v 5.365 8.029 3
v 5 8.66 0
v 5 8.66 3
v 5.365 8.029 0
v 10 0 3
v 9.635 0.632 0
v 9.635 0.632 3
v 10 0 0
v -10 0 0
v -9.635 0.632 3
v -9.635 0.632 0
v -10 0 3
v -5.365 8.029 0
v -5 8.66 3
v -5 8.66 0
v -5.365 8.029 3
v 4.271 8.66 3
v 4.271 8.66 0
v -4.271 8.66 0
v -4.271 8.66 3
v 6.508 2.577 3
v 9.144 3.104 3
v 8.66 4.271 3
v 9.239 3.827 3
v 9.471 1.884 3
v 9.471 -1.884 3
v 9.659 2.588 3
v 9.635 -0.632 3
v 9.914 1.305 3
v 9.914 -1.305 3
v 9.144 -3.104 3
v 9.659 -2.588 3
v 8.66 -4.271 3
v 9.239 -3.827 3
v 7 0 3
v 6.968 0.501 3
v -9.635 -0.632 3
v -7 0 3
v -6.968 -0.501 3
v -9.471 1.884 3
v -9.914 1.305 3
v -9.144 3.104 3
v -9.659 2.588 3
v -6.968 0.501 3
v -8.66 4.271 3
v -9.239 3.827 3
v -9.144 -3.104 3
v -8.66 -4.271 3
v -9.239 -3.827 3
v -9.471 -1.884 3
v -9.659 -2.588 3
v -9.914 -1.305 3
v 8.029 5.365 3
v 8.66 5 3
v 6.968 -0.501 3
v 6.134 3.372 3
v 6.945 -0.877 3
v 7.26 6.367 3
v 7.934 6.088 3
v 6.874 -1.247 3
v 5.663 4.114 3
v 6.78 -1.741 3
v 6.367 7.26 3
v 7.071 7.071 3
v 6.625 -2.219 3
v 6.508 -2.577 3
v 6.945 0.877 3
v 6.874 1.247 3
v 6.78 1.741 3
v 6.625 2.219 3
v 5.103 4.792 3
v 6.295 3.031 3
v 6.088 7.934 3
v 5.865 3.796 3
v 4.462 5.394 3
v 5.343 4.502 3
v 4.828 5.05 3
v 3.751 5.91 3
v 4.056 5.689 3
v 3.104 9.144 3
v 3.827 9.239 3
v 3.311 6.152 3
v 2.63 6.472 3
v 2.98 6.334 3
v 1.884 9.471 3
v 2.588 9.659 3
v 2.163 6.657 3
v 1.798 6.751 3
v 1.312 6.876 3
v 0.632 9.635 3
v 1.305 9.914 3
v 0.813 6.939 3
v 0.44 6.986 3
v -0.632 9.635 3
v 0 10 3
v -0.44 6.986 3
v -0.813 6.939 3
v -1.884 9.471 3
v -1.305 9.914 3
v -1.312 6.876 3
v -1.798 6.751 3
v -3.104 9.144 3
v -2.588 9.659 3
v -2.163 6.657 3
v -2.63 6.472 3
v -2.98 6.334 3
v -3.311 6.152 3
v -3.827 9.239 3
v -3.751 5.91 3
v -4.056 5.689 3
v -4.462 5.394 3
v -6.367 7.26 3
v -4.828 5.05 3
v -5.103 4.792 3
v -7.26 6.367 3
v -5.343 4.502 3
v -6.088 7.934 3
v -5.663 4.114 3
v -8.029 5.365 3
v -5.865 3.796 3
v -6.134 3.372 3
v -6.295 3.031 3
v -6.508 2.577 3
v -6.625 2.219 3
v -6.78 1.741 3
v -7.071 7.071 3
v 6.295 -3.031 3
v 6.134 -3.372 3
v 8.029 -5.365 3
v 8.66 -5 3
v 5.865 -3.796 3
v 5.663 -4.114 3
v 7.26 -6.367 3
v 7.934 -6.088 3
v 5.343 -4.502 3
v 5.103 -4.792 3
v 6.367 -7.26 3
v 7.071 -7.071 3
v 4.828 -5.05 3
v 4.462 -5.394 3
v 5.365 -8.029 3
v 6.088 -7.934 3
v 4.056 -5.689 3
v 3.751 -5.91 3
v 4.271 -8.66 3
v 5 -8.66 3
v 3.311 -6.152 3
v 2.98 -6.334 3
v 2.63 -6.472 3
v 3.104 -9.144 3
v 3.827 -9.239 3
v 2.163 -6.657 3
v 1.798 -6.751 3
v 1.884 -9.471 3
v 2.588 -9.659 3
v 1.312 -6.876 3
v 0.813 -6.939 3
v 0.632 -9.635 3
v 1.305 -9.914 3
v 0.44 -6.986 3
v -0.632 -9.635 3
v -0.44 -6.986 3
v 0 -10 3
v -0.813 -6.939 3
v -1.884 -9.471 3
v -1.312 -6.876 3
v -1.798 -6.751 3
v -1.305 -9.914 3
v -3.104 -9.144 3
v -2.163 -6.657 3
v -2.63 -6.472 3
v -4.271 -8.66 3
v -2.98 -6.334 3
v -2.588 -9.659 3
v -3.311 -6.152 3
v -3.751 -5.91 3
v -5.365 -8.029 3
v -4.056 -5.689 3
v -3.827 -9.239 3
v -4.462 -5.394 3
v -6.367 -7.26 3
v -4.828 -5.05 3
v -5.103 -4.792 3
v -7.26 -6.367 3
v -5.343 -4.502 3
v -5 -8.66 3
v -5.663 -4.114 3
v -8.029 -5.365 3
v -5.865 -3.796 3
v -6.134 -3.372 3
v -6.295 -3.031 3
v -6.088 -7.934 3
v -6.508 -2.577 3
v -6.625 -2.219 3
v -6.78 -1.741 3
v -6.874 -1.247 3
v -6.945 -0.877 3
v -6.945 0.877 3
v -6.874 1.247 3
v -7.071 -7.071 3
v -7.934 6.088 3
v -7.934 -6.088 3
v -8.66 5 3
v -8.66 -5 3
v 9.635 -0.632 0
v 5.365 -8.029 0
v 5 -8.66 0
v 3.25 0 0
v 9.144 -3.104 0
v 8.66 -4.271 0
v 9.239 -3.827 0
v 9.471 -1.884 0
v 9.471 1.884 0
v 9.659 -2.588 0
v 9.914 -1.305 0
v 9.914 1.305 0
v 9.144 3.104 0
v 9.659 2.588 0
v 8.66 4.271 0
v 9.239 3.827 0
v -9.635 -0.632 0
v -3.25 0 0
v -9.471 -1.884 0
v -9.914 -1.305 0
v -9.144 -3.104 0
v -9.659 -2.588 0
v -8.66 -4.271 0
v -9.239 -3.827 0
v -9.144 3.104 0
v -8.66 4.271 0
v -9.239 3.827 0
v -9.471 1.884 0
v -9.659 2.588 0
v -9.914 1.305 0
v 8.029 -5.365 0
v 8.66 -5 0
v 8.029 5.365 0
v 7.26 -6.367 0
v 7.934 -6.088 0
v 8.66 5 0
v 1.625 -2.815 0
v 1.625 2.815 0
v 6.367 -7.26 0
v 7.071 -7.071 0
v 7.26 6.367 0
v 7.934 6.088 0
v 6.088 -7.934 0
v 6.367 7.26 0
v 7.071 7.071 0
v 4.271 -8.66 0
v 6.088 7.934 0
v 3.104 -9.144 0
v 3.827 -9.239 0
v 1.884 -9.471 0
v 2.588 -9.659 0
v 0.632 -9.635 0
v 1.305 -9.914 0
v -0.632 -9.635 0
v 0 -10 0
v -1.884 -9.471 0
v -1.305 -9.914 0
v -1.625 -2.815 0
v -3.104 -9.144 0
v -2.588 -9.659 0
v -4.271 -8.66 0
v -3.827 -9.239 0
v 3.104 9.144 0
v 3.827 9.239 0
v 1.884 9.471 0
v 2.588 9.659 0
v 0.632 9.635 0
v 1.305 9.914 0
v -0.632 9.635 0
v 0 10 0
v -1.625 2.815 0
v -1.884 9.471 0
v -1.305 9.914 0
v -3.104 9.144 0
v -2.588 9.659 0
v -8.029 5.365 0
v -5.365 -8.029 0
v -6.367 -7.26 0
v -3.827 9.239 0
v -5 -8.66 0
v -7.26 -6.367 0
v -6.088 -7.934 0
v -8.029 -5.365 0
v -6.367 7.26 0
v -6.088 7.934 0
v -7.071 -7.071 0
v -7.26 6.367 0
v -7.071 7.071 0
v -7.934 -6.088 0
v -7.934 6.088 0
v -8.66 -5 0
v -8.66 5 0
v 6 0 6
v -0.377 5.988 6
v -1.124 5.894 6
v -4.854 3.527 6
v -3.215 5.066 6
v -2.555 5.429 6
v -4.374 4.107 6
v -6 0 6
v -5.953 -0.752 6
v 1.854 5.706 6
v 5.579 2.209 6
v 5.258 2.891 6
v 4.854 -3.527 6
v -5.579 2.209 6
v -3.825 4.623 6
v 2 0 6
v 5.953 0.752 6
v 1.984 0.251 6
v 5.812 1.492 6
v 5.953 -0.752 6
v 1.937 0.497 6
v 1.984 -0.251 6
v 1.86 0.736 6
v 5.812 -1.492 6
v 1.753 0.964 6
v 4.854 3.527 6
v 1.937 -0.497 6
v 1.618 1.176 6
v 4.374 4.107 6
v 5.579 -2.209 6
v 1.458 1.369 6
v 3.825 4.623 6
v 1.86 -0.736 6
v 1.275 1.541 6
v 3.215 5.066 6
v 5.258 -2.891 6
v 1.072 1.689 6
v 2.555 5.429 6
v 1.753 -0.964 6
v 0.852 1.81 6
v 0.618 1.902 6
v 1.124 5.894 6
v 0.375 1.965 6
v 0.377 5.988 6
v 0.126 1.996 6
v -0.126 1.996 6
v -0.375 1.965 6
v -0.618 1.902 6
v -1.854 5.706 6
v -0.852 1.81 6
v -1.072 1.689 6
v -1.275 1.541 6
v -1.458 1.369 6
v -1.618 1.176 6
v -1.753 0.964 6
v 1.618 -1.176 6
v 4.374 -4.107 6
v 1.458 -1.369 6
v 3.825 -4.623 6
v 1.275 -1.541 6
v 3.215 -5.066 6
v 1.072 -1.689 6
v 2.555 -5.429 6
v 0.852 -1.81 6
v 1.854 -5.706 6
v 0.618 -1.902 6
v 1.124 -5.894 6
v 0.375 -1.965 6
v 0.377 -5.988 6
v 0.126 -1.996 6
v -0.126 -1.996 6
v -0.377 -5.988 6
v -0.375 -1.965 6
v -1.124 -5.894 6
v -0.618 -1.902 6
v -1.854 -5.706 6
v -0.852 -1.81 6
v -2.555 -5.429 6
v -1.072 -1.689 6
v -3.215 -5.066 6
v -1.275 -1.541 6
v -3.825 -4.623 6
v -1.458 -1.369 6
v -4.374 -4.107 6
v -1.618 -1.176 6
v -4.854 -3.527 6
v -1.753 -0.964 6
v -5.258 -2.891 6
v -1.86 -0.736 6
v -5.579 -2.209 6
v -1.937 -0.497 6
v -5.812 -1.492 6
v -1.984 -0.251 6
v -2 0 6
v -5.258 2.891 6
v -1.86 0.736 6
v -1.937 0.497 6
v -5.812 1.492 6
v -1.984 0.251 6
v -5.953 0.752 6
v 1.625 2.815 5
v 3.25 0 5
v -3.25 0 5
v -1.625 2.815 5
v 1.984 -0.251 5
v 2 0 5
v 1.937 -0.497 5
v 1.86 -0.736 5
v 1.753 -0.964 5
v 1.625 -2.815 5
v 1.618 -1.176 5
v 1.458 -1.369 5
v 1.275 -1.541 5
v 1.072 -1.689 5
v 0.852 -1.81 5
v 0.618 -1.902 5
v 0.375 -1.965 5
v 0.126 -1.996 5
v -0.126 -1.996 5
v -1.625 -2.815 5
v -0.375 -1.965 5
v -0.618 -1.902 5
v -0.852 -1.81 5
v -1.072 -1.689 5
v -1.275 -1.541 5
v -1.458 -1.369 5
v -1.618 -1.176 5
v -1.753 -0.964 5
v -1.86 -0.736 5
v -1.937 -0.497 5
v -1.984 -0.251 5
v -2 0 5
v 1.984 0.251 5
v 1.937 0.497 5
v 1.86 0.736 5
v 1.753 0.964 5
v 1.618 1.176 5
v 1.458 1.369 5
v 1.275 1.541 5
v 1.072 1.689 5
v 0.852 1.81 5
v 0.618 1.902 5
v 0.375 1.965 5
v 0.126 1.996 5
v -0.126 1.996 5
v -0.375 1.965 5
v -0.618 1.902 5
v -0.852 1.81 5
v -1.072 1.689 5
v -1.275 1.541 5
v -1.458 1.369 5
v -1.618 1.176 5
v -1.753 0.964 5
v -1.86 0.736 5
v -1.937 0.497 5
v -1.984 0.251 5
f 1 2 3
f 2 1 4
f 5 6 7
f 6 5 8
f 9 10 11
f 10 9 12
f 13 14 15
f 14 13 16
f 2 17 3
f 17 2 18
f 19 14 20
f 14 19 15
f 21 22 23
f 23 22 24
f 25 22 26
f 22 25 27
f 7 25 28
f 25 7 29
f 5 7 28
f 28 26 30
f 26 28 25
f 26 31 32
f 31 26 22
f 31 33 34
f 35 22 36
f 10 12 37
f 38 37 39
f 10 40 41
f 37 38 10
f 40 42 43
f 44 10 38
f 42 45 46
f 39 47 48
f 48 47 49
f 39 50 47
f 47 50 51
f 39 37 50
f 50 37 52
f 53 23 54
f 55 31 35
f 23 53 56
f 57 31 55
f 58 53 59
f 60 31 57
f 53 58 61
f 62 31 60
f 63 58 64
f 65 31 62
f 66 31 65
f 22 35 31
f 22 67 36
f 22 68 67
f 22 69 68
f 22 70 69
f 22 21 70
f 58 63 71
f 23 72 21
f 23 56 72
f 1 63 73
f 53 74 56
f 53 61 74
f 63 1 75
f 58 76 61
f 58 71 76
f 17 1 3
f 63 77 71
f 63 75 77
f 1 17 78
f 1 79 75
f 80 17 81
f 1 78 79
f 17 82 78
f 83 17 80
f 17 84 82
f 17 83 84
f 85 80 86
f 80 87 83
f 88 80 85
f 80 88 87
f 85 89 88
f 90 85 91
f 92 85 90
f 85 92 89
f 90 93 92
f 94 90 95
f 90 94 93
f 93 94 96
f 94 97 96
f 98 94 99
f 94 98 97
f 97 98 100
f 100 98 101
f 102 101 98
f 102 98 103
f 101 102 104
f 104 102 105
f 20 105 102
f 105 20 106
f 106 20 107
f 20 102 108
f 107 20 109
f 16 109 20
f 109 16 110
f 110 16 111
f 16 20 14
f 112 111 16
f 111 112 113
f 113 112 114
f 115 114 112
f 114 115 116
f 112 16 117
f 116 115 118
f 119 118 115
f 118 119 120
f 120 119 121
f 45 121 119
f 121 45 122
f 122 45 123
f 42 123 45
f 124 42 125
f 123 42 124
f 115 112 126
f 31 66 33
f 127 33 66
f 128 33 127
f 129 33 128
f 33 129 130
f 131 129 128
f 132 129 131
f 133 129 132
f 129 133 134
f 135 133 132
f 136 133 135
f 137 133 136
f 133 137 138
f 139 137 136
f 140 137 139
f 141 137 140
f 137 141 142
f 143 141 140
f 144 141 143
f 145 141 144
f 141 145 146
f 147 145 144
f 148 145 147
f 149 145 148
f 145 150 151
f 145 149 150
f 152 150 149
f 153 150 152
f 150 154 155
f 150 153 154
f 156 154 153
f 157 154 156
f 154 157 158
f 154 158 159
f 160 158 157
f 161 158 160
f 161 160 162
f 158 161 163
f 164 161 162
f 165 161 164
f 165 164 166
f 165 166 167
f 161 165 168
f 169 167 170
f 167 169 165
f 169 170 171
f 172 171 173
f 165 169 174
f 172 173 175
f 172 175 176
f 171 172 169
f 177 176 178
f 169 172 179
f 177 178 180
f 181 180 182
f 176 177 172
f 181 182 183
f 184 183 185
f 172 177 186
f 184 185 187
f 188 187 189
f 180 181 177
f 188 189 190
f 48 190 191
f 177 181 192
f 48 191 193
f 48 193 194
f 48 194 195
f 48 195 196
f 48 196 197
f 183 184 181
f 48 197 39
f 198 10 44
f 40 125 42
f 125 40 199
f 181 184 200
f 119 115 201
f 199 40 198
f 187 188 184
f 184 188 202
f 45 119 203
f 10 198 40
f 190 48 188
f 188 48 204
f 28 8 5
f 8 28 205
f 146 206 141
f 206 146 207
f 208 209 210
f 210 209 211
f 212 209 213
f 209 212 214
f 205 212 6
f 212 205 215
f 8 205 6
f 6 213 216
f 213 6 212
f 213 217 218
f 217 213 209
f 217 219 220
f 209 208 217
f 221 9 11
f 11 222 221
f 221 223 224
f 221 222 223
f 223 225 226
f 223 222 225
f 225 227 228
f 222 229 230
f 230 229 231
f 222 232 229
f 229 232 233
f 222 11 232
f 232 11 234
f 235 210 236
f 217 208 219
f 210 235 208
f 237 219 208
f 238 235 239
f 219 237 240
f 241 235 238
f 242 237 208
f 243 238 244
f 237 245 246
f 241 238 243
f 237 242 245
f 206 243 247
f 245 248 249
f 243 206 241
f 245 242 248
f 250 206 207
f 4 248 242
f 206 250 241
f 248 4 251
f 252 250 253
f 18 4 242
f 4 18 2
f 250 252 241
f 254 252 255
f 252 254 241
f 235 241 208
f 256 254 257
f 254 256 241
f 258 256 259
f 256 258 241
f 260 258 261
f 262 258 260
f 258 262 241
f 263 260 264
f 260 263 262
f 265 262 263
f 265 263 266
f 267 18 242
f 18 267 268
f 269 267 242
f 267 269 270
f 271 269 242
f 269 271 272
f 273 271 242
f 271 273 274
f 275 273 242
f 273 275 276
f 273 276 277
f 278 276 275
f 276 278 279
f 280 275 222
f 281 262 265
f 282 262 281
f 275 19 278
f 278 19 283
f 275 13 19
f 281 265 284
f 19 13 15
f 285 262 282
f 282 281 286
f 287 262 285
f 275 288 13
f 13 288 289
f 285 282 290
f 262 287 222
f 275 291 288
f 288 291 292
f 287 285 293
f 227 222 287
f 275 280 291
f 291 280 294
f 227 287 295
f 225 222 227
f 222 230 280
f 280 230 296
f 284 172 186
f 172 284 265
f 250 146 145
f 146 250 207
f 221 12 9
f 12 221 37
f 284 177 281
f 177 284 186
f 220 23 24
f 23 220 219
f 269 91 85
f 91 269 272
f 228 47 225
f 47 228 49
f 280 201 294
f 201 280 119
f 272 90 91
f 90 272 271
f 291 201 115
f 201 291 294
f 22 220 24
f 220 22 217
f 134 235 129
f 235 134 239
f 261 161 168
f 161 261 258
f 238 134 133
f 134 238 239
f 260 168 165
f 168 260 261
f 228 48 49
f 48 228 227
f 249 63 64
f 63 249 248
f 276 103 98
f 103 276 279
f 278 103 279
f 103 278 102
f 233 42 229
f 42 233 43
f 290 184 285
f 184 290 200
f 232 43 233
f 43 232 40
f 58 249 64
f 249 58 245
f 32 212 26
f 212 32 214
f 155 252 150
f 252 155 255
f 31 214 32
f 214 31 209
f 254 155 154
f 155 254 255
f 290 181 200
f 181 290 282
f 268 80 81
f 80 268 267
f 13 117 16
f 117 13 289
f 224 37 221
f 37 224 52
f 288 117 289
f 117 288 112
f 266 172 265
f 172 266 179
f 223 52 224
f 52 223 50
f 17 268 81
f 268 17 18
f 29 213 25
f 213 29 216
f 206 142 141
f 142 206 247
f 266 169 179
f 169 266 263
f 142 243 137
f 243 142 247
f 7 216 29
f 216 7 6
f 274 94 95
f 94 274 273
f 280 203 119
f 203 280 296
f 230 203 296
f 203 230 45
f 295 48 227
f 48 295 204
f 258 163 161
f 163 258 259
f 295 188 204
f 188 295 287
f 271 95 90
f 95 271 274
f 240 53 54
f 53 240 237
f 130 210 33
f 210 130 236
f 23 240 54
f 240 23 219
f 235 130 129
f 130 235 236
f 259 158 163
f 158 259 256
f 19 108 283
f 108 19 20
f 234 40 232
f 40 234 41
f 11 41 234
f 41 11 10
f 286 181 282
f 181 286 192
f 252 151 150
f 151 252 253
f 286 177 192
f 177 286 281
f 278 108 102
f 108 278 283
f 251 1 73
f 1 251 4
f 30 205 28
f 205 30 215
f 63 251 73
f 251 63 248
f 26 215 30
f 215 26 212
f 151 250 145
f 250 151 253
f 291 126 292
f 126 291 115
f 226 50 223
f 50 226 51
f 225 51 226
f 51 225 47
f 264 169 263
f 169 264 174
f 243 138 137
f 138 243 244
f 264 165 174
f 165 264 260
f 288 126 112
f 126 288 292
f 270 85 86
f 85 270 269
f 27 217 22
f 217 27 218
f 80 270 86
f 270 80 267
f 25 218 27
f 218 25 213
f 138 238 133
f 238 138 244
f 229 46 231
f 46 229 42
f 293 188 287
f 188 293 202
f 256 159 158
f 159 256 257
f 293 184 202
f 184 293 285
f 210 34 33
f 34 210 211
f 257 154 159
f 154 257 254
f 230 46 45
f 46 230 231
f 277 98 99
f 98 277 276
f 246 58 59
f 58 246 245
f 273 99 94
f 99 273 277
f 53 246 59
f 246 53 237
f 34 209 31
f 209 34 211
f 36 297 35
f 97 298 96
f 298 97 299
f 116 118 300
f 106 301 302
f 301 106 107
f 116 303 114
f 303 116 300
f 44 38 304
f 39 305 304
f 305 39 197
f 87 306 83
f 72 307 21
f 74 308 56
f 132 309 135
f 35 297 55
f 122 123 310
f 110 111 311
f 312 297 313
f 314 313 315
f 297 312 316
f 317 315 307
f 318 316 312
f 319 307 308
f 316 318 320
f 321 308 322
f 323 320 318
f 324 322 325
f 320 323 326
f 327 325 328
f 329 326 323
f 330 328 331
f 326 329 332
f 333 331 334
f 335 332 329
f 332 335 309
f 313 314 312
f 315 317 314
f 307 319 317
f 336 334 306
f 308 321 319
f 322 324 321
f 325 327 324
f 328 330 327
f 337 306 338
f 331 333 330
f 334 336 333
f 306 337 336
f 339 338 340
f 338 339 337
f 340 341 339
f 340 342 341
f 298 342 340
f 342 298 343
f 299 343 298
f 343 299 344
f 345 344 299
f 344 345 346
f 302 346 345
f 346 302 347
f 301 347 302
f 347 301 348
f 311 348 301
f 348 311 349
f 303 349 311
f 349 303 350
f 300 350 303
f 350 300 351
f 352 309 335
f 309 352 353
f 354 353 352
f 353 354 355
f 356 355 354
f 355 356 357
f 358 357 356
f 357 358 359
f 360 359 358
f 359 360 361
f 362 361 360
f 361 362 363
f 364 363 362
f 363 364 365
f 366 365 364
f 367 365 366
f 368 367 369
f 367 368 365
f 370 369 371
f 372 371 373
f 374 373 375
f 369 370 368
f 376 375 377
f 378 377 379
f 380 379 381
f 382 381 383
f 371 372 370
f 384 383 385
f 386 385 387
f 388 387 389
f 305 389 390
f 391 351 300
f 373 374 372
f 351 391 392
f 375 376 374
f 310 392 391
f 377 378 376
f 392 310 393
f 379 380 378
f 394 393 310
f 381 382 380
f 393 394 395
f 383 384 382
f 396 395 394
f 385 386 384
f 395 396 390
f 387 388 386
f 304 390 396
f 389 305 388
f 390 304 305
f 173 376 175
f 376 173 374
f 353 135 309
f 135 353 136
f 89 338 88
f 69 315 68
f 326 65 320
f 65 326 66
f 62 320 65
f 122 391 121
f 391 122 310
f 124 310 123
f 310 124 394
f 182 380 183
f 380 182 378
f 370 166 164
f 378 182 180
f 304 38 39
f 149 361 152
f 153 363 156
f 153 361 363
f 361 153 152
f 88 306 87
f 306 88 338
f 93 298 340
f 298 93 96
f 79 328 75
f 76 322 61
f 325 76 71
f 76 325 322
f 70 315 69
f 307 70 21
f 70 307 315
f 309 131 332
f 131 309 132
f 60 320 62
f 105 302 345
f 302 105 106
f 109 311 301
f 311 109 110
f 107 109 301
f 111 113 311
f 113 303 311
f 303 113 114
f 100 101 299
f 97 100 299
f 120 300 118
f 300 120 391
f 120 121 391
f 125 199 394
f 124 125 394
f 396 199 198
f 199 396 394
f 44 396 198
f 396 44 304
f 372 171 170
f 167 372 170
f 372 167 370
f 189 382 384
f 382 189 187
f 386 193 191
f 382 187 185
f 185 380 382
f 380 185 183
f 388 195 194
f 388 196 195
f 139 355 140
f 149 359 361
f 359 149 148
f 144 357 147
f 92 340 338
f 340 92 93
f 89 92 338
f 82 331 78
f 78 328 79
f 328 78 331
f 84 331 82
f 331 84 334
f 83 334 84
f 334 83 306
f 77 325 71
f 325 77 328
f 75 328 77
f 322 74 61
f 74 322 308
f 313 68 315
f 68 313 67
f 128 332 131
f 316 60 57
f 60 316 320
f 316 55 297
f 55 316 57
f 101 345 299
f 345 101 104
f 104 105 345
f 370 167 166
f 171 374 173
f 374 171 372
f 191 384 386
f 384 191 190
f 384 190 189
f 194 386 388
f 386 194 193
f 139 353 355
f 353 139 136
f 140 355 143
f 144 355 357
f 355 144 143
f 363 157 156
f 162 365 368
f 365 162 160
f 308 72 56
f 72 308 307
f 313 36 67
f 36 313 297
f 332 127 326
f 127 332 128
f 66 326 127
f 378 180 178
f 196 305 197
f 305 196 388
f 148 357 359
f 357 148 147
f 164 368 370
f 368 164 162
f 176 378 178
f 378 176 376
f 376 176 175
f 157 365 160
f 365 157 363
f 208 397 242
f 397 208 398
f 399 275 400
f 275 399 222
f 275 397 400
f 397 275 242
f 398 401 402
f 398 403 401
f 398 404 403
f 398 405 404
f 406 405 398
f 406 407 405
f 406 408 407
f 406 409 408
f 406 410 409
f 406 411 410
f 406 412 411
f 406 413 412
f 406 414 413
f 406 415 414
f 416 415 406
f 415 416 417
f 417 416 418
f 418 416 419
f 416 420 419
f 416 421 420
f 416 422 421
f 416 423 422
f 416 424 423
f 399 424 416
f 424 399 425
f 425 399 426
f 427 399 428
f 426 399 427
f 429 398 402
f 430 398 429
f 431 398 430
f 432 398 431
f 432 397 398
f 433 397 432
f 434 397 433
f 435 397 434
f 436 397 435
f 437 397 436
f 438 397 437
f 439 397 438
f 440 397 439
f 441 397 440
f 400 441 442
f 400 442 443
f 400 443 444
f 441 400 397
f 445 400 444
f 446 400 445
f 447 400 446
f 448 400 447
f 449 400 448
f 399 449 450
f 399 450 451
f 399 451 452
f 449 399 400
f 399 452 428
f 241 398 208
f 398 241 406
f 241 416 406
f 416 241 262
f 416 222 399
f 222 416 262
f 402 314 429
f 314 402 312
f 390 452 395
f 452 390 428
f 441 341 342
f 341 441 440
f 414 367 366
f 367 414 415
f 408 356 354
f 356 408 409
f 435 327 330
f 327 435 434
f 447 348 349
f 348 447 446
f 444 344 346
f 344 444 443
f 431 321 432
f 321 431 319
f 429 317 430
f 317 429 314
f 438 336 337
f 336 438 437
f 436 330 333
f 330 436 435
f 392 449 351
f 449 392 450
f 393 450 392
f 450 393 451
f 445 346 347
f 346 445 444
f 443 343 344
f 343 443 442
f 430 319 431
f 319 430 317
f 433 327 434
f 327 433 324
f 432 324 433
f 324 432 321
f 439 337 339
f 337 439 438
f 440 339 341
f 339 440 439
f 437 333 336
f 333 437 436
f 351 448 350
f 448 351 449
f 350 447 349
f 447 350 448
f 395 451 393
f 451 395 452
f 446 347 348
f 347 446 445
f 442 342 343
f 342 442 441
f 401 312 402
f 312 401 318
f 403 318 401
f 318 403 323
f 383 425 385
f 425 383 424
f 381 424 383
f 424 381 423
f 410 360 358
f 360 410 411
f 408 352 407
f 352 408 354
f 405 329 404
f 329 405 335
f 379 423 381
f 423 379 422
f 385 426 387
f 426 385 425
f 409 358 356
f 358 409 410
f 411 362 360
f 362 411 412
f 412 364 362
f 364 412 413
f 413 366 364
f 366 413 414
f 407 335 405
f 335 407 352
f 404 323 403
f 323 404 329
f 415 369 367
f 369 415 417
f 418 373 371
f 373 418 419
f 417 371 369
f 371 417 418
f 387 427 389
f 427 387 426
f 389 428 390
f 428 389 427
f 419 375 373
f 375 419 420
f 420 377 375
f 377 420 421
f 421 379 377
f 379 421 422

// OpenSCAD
difference() {
    difference() {
        union() {
            for (i = [0 : 22.5 : 360])
            {
                rotate([0, 0, i]) cylinder($fn=6, r=10, h=3);
            }
            difference() {
                cylinder(r1=8, r2=6, $fn=50, h=6);
                translate([0,0,-10]) cylinder(h=10, r=8, $fn=50);
            }
        }
        cylinder($fn=6, r=3.25, h=5);
    }
    cylinder($fn=50, r=2, h=6);
}
